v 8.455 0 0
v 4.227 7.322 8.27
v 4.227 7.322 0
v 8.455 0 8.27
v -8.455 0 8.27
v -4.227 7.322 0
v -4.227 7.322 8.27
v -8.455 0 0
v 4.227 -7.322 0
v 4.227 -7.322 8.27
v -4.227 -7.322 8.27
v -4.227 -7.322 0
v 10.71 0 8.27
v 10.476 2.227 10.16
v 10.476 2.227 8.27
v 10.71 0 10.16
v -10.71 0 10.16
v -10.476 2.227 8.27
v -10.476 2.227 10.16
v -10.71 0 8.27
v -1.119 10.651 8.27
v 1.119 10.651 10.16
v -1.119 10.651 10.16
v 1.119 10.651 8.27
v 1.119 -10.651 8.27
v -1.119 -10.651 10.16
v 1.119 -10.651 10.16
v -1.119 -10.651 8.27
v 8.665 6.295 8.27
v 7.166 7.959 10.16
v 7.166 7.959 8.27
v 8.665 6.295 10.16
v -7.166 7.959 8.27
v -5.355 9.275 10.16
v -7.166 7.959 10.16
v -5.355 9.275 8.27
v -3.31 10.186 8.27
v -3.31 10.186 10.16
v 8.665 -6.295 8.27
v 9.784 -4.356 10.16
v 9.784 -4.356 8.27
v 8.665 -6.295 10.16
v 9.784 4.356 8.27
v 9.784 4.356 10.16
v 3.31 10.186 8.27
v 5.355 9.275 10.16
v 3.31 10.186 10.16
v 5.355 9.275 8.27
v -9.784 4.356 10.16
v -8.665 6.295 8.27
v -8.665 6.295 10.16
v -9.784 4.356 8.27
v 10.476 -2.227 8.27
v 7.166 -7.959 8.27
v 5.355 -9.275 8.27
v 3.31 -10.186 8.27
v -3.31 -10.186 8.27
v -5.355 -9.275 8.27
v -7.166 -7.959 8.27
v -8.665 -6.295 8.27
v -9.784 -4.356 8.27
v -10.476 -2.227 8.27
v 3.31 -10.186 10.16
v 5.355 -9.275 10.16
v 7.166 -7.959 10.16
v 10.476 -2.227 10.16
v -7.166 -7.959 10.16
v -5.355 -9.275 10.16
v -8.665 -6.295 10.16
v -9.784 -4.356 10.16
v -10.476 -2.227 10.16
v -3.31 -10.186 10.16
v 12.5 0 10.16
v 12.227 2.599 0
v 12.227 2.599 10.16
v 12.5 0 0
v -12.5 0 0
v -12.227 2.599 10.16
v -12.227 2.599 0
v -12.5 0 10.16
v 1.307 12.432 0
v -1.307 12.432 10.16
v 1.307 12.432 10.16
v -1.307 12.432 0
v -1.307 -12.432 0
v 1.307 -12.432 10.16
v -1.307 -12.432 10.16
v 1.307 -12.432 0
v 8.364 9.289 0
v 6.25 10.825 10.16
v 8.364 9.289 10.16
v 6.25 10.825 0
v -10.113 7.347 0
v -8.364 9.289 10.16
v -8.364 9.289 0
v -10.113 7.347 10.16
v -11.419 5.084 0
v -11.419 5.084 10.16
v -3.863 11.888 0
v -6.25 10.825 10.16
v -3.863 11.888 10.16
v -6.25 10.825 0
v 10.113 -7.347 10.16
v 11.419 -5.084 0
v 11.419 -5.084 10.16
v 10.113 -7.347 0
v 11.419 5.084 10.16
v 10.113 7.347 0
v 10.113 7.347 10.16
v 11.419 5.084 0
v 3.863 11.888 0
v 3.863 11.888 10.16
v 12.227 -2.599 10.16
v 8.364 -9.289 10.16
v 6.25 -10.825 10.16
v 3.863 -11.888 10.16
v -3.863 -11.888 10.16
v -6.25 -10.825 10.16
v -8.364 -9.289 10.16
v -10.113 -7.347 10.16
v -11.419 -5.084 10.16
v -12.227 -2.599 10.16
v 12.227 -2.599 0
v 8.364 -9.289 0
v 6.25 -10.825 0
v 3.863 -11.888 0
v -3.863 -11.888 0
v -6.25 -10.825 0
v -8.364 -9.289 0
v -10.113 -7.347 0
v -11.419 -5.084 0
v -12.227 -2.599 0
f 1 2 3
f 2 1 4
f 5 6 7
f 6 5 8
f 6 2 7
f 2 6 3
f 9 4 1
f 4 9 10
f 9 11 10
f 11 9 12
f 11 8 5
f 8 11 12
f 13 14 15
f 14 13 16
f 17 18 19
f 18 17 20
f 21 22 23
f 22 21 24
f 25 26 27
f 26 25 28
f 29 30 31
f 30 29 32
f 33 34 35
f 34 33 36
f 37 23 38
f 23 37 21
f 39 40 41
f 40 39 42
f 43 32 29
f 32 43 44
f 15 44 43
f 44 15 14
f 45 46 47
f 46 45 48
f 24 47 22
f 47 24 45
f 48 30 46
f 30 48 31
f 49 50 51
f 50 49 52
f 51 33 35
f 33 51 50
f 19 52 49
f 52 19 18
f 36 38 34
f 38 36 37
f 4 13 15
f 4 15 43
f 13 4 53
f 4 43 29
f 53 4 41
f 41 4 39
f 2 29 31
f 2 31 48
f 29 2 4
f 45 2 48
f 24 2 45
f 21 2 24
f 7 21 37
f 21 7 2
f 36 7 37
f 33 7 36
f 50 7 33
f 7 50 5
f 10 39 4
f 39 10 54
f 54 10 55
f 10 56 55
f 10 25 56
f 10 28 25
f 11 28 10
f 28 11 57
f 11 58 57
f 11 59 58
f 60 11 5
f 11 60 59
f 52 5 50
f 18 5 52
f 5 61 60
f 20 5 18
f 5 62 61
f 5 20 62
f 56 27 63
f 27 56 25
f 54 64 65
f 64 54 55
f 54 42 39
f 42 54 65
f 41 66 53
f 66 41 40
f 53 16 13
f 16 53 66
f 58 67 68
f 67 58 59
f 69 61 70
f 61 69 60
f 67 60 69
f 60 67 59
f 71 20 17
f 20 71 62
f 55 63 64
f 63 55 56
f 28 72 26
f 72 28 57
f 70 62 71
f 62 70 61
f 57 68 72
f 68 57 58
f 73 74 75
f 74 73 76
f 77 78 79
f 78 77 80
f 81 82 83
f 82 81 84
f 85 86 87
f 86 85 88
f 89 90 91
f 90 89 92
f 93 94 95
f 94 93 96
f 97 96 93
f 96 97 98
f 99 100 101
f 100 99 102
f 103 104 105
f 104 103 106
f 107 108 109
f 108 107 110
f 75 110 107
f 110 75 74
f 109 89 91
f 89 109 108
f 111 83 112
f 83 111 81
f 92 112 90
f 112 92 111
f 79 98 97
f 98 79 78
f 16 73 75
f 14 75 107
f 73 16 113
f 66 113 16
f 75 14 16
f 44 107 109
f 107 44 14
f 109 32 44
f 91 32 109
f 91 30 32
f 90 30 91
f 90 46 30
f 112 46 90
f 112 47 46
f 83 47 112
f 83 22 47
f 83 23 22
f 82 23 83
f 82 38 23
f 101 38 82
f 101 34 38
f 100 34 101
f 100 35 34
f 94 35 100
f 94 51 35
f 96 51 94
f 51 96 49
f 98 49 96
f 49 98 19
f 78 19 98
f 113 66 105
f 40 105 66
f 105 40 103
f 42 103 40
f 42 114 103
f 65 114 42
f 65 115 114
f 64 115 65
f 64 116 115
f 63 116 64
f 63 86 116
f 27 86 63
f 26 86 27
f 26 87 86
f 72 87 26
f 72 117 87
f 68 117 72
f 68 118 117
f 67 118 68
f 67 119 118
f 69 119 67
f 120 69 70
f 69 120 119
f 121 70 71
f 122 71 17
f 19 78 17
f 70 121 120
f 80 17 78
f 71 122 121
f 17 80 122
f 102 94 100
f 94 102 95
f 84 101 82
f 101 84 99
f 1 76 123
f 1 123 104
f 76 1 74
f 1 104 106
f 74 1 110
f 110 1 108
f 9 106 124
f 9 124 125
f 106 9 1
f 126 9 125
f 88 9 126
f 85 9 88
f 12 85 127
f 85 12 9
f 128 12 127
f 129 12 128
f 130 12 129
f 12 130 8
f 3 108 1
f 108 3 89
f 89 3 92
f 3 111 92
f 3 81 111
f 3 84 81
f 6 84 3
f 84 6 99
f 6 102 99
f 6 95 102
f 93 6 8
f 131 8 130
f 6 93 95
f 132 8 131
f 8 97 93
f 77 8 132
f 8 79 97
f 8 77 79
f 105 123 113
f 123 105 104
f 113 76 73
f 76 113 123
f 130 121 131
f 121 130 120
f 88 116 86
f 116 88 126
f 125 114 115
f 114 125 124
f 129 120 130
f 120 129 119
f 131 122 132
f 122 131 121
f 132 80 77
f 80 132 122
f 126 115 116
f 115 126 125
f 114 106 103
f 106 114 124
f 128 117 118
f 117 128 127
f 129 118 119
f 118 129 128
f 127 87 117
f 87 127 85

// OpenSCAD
// Hex Bolt Anchor
// Anchor to prevent a hex bolt (or nut) from
// rotating.
//
$fs=1;

// 3/4" - 24 nut dimensions:
//   nut height: 8.27mm
//   flat diameter: 14.21mm
//   vertex diameter: 16.23mm (measured)
//   vertex diameter: 16.41mm (calculated from flat diameter)
//   Note that the nut has slightly rounded corners.
//   washer thickness: 1.65mm
//   washer diameter: 20.92mm
// Model dimensions below add
clearance = 0.5; // mm
nut_height = 8.27;
hex_dia = 16.41+clearance; // Vertex-to-vertex
washer_dia = 20.92+clearance;
washer_height = 1.89; // no vertical clearance - so washer is flush
base_dia = 25.5-clearance; // 1 inch
base_height = nut_height + washer_height;

eps=0.1; // for CSG

module hex(dia, h) {
    cylinder(h=h, r=dia/2, $fn=6);
}

module washer(dia, h) {
    cylinder(h=h, r=dia/2);
}


module base() {
    cylinder(h=base_height, r=base_dia/2);
}


module cutout() {        
    union() {
        translate([0, 0, -eps]) hex(hex_dia, base_height+eps);
        translate([0, 0, base_height-washer_height])
            washer(washer_dia, washer_height+eps);
    }    
}


module draw0() {
difference() {
    base();
    cutout();
}
}



draw0();
